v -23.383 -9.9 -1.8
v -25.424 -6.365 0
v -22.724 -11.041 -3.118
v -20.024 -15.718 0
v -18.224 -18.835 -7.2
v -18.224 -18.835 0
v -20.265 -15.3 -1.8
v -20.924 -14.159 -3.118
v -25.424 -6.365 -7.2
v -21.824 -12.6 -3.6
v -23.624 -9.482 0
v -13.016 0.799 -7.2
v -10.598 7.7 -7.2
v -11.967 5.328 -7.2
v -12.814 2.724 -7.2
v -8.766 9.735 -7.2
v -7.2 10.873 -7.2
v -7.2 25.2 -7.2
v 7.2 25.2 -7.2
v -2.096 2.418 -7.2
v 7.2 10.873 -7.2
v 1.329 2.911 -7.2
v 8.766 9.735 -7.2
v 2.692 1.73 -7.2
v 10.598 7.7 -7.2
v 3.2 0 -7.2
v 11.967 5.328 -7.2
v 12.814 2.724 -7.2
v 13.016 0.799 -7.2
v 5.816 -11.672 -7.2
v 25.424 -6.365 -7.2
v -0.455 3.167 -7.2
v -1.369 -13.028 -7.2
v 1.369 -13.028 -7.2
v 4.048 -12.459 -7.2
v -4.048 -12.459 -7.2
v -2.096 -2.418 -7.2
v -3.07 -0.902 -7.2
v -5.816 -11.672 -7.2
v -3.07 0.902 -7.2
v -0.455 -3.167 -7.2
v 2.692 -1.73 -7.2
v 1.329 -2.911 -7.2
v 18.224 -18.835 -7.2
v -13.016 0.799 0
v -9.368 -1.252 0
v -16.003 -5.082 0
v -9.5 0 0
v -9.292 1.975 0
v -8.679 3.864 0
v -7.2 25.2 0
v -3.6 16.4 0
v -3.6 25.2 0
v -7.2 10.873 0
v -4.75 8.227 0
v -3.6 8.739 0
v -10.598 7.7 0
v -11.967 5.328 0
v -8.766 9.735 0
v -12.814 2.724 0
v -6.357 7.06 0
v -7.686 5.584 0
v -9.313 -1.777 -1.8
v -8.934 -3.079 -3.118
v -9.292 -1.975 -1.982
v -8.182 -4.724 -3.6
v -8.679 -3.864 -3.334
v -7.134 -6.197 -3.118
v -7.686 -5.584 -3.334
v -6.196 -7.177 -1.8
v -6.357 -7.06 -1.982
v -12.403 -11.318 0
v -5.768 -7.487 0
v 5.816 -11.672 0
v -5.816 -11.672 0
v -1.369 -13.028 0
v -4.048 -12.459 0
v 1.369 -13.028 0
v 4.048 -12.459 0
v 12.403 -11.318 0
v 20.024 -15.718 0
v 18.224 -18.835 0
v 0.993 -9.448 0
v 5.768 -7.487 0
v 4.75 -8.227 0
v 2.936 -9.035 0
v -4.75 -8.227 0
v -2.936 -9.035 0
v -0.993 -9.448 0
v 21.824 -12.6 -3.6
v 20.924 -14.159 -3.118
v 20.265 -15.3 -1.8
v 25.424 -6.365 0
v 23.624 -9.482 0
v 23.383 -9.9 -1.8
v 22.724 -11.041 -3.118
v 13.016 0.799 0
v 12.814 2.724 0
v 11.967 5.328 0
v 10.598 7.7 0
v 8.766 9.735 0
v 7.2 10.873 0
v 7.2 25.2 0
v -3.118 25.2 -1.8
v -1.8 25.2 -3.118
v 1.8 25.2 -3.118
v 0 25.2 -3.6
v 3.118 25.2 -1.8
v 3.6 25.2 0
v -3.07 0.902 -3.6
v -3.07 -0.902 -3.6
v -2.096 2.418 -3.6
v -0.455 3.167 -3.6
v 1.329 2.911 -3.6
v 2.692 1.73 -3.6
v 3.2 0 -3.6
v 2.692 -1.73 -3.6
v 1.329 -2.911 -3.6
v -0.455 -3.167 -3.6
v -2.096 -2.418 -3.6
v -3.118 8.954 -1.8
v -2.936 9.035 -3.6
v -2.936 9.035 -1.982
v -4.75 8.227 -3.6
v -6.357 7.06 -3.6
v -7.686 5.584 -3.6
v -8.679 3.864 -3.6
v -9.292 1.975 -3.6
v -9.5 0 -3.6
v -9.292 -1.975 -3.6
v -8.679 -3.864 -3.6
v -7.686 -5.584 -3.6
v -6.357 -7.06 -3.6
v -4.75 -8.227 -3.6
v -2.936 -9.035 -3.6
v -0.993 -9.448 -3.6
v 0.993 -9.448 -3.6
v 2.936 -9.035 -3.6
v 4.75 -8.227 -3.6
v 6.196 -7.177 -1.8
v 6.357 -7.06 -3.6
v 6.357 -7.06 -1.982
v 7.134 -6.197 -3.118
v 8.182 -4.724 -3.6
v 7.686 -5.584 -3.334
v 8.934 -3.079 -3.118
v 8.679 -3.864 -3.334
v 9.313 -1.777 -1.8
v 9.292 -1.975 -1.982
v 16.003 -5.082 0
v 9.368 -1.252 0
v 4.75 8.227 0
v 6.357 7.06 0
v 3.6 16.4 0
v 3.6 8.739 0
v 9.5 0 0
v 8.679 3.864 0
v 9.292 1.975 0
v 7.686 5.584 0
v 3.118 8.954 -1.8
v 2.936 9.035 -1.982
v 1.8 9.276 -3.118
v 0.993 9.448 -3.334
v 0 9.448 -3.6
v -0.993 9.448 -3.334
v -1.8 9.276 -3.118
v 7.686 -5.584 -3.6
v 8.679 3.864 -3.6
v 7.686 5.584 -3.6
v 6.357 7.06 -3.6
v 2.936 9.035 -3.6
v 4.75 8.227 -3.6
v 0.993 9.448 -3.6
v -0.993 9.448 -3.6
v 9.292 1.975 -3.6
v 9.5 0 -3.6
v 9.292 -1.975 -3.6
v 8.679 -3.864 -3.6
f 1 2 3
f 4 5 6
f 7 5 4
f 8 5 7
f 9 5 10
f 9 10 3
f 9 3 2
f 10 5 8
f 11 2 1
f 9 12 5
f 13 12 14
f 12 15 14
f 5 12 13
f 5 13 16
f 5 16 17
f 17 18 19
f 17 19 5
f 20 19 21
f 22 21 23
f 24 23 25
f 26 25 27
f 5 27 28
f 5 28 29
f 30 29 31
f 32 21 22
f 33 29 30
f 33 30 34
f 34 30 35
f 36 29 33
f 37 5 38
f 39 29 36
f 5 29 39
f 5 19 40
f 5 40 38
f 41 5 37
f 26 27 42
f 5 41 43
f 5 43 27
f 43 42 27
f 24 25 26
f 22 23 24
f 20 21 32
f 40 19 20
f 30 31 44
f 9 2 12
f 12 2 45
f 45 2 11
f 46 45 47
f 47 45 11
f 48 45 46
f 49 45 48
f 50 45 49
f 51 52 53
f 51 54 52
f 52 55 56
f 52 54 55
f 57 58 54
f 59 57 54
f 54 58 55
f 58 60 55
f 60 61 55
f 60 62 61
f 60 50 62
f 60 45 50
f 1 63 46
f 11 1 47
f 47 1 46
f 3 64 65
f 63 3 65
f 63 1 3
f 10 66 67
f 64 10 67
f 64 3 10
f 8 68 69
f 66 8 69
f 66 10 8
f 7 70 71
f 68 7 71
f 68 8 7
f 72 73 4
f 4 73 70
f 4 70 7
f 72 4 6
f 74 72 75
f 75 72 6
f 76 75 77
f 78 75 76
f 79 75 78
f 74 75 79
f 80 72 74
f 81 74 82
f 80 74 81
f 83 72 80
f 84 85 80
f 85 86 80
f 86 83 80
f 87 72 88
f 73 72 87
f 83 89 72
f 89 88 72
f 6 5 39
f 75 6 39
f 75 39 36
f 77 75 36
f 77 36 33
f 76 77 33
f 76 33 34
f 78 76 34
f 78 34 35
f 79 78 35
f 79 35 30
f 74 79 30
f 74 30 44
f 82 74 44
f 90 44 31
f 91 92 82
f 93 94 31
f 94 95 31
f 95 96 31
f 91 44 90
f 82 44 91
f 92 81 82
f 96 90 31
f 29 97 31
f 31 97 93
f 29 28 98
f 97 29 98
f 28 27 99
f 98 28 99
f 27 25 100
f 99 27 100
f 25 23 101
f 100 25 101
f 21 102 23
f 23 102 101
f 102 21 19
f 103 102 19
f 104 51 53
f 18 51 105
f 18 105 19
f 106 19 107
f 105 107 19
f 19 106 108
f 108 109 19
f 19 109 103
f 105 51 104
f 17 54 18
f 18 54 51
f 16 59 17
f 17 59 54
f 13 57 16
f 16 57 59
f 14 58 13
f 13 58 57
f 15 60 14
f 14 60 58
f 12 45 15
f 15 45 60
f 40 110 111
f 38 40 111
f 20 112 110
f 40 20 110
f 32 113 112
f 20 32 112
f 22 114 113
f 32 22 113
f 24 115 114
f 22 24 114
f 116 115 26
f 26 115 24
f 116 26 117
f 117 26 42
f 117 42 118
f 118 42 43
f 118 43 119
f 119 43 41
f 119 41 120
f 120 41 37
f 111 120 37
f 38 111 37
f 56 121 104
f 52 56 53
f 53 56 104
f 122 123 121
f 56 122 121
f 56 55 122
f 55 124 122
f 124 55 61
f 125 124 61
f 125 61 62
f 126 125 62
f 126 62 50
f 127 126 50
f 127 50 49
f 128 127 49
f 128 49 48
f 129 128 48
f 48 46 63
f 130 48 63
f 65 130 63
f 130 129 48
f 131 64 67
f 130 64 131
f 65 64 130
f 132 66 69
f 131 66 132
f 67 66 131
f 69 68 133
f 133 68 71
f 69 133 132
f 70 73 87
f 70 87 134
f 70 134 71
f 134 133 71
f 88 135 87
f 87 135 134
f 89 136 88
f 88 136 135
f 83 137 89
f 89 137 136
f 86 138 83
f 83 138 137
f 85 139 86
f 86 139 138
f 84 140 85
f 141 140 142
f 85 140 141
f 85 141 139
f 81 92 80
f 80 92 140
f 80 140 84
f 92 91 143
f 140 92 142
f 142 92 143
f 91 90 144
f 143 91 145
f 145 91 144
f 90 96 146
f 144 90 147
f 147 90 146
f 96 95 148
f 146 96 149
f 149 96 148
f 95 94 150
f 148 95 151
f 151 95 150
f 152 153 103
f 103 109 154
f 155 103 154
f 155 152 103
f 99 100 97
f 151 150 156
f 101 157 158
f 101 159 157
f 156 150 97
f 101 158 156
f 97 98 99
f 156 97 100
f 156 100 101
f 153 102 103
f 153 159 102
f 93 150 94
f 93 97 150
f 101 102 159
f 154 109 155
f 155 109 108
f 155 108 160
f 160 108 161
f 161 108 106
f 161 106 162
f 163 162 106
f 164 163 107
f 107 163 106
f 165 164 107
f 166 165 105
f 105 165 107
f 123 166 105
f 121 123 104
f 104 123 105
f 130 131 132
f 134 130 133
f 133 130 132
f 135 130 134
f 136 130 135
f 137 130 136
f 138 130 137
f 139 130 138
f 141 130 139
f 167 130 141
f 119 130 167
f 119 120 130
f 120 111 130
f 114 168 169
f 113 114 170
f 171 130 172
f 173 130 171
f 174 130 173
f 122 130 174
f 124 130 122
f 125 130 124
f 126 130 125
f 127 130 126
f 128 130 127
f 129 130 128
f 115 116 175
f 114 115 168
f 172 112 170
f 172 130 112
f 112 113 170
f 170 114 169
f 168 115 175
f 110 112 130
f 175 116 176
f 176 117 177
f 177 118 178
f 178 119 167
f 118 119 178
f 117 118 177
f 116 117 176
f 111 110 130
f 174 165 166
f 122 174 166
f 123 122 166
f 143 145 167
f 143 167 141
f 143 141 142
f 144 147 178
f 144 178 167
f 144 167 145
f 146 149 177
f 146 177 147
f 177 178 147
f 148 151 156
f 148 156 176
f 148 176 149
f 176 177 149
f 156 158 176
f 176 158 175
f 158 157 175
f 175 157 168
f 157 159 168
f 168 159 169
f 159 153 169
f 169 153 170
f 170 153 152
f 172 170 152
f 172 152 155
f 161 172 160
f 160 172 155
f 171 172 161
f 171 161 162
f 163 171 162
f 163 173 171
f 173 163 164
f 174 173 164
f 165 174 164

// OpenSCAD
// T-connector for RG-59
// 

core = 3.6; // Core diameter
bolt = 3.2; // Bold diameter

module solid(){
	translate ([0,4*core,-core])
		cube ([4*core,6*core,2*core],center=true);
}

module hollow(){
	translate ([0,4*core,0])
		rotate ([90,0,0])
			cylinder (h=core*7, r=core,center=true);
}

module case(){
	difference() {
		union() {
			for ( i = [0:2] ) {
				rotate ( i*360/3, [0,0,1])
					solid();
			}
			translate ([0,0,-core])
				cylinder (h=core*2, r=core+9.5, center=true);
		}
		union() {
			for ( i = [0:2] ) {
				rotate ( i*360/3, [0,0,1])
					hollow();
			}
			cylinder (h=core*2, r=9.5, center=true);
		}
		cylinder(h=core*5, r=bolt, center=true);
	}
}

case();
